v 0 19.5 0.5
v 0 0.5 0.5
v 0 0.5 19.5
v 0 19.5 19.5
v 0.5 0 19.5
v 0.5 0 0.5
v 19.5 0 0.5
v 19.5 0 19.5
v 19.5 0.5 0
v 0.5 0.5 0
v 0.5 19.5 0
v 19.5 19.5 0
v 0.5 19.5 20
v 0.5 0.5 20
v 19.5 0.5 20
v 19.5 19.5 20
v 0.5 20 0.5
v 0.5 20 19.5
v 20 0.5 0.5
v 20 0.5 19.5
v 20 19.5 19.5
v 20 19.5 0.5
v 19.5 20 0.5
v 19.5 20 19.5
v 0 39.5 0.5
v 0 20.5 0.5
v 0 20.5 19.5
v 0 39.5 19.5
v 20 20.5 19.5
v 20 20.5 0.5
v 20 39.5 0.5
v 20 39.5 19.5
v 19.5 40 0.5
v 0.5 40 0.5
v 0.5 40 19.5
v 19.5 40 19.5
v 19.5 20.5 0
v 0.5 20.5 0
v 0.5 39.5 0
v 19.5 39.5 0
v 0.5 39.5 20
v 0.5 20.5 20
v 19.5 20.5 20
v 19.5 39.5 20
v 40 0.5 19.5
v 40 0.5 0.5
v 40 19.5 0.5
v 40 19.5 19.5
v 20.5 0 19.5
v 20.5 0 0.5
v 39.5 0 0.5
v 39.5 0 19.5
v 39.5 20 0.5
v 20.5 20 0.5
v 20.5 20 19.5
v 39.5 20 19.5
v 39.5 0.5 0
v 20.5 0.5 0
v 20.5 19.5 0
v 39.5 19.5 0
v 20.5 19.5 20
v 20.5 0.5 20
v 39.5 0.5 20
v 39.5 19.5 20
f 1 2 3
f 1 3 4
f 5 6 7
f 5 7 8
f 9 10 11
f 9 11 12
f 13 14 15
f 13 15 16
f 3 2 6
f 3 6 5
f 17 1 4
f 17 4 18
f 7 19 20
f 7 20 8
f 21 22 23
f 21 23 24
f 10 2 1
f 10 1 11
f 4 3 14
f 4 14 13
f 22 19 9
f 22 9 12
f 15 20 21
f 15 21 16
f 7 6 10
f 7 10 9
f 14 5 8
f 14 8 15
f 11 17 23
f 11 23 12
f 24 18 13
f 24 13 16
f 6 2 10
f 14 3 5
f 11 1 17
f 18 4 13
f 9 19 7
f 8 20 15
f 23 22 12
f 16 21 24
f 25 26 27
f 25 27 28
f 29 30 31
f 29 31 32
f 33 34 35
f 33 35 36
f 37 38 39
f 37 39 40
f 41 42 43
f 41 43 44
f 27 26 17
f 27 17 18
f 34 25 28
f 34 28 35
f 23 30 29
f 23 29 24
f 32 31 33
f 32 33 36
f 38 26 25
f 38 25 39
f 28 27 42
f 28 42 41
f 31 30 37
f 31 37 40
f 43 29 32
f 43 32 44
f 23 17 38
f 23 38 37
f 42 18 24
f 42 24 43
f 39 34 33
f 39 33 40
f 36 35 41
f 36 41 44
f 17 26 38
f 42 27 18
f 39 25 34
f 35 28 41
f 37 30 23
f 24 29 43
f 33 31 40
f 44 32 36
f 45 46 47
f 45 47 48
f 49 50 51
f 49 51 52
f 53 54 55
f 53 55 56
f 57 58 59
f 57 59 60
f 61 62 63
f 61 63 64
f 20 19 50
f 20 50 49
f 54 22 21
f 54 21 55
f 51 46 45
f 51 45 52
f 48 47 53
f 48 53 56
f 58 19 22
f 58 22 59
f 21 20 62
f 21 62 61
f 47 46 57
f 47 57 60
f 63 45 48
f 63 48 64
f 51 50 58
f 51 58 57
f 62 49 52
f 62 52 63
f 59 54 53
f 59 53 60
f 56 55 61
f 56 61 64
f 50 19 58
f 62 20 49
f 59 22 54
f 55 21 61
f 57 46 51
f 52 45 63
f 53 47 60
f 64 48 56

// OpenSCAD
// Wongo piece 8: Corner. GPL-3.0; see README.txt.
// 0.5 mm chamfer at the default 20 mm pitch; unit scales everything.
unit = 20;
positions = [[0,0,0],[0,1,0],[1,0,0]];
union() { for (p = positions) translate(p * unit) { scale([unit,unit,unit]) polyhedron(points=[[0,0.025,0.025],[0,0.025,0.975],[0,0.975,0.025],[0,0.975,0.975],[1,0.025,0.025],[1,0.025,0.975],[1,0.975,0.025],[1,0.975,0.975],[0.025,0,0.025],[0.025,0,0.975],[0.975,0,0.025],[0.975,0,0.975],[0.025,1,0.025],[0.025,1,0.975],[0.975,1,0.025],[0.975,1,0.975],[0.025,0.025,0],[0.025,0.975,0],[0.975,0.025,0],[0.975,0.975,0],[0.025,0.025,1],[0.025,0.975,1],[0.975,0.025,1],[0.975,0.975,1]], faces=[[3,1,0,2],[7,6,4,5],[11,10,8,9],[15,13,12,14],[19,17,16,18],[23,22,20,21],[9,8,0,1],[13,3,2,12],[11,5,4,10],[15,14,6,7],[17,2,0,16],[21,20,1,3],[19,18,4,6],[23,7,5,22],[18,16,8,10],[22,11,9,20],[19,14,12,17],[23,21,13,15],[16,0,8],[9,1,20],[12,2,17],[21,3,13],[10,4,18],[22,5,11],[19,6,14],[15,7,23]], convexity=10); } }
